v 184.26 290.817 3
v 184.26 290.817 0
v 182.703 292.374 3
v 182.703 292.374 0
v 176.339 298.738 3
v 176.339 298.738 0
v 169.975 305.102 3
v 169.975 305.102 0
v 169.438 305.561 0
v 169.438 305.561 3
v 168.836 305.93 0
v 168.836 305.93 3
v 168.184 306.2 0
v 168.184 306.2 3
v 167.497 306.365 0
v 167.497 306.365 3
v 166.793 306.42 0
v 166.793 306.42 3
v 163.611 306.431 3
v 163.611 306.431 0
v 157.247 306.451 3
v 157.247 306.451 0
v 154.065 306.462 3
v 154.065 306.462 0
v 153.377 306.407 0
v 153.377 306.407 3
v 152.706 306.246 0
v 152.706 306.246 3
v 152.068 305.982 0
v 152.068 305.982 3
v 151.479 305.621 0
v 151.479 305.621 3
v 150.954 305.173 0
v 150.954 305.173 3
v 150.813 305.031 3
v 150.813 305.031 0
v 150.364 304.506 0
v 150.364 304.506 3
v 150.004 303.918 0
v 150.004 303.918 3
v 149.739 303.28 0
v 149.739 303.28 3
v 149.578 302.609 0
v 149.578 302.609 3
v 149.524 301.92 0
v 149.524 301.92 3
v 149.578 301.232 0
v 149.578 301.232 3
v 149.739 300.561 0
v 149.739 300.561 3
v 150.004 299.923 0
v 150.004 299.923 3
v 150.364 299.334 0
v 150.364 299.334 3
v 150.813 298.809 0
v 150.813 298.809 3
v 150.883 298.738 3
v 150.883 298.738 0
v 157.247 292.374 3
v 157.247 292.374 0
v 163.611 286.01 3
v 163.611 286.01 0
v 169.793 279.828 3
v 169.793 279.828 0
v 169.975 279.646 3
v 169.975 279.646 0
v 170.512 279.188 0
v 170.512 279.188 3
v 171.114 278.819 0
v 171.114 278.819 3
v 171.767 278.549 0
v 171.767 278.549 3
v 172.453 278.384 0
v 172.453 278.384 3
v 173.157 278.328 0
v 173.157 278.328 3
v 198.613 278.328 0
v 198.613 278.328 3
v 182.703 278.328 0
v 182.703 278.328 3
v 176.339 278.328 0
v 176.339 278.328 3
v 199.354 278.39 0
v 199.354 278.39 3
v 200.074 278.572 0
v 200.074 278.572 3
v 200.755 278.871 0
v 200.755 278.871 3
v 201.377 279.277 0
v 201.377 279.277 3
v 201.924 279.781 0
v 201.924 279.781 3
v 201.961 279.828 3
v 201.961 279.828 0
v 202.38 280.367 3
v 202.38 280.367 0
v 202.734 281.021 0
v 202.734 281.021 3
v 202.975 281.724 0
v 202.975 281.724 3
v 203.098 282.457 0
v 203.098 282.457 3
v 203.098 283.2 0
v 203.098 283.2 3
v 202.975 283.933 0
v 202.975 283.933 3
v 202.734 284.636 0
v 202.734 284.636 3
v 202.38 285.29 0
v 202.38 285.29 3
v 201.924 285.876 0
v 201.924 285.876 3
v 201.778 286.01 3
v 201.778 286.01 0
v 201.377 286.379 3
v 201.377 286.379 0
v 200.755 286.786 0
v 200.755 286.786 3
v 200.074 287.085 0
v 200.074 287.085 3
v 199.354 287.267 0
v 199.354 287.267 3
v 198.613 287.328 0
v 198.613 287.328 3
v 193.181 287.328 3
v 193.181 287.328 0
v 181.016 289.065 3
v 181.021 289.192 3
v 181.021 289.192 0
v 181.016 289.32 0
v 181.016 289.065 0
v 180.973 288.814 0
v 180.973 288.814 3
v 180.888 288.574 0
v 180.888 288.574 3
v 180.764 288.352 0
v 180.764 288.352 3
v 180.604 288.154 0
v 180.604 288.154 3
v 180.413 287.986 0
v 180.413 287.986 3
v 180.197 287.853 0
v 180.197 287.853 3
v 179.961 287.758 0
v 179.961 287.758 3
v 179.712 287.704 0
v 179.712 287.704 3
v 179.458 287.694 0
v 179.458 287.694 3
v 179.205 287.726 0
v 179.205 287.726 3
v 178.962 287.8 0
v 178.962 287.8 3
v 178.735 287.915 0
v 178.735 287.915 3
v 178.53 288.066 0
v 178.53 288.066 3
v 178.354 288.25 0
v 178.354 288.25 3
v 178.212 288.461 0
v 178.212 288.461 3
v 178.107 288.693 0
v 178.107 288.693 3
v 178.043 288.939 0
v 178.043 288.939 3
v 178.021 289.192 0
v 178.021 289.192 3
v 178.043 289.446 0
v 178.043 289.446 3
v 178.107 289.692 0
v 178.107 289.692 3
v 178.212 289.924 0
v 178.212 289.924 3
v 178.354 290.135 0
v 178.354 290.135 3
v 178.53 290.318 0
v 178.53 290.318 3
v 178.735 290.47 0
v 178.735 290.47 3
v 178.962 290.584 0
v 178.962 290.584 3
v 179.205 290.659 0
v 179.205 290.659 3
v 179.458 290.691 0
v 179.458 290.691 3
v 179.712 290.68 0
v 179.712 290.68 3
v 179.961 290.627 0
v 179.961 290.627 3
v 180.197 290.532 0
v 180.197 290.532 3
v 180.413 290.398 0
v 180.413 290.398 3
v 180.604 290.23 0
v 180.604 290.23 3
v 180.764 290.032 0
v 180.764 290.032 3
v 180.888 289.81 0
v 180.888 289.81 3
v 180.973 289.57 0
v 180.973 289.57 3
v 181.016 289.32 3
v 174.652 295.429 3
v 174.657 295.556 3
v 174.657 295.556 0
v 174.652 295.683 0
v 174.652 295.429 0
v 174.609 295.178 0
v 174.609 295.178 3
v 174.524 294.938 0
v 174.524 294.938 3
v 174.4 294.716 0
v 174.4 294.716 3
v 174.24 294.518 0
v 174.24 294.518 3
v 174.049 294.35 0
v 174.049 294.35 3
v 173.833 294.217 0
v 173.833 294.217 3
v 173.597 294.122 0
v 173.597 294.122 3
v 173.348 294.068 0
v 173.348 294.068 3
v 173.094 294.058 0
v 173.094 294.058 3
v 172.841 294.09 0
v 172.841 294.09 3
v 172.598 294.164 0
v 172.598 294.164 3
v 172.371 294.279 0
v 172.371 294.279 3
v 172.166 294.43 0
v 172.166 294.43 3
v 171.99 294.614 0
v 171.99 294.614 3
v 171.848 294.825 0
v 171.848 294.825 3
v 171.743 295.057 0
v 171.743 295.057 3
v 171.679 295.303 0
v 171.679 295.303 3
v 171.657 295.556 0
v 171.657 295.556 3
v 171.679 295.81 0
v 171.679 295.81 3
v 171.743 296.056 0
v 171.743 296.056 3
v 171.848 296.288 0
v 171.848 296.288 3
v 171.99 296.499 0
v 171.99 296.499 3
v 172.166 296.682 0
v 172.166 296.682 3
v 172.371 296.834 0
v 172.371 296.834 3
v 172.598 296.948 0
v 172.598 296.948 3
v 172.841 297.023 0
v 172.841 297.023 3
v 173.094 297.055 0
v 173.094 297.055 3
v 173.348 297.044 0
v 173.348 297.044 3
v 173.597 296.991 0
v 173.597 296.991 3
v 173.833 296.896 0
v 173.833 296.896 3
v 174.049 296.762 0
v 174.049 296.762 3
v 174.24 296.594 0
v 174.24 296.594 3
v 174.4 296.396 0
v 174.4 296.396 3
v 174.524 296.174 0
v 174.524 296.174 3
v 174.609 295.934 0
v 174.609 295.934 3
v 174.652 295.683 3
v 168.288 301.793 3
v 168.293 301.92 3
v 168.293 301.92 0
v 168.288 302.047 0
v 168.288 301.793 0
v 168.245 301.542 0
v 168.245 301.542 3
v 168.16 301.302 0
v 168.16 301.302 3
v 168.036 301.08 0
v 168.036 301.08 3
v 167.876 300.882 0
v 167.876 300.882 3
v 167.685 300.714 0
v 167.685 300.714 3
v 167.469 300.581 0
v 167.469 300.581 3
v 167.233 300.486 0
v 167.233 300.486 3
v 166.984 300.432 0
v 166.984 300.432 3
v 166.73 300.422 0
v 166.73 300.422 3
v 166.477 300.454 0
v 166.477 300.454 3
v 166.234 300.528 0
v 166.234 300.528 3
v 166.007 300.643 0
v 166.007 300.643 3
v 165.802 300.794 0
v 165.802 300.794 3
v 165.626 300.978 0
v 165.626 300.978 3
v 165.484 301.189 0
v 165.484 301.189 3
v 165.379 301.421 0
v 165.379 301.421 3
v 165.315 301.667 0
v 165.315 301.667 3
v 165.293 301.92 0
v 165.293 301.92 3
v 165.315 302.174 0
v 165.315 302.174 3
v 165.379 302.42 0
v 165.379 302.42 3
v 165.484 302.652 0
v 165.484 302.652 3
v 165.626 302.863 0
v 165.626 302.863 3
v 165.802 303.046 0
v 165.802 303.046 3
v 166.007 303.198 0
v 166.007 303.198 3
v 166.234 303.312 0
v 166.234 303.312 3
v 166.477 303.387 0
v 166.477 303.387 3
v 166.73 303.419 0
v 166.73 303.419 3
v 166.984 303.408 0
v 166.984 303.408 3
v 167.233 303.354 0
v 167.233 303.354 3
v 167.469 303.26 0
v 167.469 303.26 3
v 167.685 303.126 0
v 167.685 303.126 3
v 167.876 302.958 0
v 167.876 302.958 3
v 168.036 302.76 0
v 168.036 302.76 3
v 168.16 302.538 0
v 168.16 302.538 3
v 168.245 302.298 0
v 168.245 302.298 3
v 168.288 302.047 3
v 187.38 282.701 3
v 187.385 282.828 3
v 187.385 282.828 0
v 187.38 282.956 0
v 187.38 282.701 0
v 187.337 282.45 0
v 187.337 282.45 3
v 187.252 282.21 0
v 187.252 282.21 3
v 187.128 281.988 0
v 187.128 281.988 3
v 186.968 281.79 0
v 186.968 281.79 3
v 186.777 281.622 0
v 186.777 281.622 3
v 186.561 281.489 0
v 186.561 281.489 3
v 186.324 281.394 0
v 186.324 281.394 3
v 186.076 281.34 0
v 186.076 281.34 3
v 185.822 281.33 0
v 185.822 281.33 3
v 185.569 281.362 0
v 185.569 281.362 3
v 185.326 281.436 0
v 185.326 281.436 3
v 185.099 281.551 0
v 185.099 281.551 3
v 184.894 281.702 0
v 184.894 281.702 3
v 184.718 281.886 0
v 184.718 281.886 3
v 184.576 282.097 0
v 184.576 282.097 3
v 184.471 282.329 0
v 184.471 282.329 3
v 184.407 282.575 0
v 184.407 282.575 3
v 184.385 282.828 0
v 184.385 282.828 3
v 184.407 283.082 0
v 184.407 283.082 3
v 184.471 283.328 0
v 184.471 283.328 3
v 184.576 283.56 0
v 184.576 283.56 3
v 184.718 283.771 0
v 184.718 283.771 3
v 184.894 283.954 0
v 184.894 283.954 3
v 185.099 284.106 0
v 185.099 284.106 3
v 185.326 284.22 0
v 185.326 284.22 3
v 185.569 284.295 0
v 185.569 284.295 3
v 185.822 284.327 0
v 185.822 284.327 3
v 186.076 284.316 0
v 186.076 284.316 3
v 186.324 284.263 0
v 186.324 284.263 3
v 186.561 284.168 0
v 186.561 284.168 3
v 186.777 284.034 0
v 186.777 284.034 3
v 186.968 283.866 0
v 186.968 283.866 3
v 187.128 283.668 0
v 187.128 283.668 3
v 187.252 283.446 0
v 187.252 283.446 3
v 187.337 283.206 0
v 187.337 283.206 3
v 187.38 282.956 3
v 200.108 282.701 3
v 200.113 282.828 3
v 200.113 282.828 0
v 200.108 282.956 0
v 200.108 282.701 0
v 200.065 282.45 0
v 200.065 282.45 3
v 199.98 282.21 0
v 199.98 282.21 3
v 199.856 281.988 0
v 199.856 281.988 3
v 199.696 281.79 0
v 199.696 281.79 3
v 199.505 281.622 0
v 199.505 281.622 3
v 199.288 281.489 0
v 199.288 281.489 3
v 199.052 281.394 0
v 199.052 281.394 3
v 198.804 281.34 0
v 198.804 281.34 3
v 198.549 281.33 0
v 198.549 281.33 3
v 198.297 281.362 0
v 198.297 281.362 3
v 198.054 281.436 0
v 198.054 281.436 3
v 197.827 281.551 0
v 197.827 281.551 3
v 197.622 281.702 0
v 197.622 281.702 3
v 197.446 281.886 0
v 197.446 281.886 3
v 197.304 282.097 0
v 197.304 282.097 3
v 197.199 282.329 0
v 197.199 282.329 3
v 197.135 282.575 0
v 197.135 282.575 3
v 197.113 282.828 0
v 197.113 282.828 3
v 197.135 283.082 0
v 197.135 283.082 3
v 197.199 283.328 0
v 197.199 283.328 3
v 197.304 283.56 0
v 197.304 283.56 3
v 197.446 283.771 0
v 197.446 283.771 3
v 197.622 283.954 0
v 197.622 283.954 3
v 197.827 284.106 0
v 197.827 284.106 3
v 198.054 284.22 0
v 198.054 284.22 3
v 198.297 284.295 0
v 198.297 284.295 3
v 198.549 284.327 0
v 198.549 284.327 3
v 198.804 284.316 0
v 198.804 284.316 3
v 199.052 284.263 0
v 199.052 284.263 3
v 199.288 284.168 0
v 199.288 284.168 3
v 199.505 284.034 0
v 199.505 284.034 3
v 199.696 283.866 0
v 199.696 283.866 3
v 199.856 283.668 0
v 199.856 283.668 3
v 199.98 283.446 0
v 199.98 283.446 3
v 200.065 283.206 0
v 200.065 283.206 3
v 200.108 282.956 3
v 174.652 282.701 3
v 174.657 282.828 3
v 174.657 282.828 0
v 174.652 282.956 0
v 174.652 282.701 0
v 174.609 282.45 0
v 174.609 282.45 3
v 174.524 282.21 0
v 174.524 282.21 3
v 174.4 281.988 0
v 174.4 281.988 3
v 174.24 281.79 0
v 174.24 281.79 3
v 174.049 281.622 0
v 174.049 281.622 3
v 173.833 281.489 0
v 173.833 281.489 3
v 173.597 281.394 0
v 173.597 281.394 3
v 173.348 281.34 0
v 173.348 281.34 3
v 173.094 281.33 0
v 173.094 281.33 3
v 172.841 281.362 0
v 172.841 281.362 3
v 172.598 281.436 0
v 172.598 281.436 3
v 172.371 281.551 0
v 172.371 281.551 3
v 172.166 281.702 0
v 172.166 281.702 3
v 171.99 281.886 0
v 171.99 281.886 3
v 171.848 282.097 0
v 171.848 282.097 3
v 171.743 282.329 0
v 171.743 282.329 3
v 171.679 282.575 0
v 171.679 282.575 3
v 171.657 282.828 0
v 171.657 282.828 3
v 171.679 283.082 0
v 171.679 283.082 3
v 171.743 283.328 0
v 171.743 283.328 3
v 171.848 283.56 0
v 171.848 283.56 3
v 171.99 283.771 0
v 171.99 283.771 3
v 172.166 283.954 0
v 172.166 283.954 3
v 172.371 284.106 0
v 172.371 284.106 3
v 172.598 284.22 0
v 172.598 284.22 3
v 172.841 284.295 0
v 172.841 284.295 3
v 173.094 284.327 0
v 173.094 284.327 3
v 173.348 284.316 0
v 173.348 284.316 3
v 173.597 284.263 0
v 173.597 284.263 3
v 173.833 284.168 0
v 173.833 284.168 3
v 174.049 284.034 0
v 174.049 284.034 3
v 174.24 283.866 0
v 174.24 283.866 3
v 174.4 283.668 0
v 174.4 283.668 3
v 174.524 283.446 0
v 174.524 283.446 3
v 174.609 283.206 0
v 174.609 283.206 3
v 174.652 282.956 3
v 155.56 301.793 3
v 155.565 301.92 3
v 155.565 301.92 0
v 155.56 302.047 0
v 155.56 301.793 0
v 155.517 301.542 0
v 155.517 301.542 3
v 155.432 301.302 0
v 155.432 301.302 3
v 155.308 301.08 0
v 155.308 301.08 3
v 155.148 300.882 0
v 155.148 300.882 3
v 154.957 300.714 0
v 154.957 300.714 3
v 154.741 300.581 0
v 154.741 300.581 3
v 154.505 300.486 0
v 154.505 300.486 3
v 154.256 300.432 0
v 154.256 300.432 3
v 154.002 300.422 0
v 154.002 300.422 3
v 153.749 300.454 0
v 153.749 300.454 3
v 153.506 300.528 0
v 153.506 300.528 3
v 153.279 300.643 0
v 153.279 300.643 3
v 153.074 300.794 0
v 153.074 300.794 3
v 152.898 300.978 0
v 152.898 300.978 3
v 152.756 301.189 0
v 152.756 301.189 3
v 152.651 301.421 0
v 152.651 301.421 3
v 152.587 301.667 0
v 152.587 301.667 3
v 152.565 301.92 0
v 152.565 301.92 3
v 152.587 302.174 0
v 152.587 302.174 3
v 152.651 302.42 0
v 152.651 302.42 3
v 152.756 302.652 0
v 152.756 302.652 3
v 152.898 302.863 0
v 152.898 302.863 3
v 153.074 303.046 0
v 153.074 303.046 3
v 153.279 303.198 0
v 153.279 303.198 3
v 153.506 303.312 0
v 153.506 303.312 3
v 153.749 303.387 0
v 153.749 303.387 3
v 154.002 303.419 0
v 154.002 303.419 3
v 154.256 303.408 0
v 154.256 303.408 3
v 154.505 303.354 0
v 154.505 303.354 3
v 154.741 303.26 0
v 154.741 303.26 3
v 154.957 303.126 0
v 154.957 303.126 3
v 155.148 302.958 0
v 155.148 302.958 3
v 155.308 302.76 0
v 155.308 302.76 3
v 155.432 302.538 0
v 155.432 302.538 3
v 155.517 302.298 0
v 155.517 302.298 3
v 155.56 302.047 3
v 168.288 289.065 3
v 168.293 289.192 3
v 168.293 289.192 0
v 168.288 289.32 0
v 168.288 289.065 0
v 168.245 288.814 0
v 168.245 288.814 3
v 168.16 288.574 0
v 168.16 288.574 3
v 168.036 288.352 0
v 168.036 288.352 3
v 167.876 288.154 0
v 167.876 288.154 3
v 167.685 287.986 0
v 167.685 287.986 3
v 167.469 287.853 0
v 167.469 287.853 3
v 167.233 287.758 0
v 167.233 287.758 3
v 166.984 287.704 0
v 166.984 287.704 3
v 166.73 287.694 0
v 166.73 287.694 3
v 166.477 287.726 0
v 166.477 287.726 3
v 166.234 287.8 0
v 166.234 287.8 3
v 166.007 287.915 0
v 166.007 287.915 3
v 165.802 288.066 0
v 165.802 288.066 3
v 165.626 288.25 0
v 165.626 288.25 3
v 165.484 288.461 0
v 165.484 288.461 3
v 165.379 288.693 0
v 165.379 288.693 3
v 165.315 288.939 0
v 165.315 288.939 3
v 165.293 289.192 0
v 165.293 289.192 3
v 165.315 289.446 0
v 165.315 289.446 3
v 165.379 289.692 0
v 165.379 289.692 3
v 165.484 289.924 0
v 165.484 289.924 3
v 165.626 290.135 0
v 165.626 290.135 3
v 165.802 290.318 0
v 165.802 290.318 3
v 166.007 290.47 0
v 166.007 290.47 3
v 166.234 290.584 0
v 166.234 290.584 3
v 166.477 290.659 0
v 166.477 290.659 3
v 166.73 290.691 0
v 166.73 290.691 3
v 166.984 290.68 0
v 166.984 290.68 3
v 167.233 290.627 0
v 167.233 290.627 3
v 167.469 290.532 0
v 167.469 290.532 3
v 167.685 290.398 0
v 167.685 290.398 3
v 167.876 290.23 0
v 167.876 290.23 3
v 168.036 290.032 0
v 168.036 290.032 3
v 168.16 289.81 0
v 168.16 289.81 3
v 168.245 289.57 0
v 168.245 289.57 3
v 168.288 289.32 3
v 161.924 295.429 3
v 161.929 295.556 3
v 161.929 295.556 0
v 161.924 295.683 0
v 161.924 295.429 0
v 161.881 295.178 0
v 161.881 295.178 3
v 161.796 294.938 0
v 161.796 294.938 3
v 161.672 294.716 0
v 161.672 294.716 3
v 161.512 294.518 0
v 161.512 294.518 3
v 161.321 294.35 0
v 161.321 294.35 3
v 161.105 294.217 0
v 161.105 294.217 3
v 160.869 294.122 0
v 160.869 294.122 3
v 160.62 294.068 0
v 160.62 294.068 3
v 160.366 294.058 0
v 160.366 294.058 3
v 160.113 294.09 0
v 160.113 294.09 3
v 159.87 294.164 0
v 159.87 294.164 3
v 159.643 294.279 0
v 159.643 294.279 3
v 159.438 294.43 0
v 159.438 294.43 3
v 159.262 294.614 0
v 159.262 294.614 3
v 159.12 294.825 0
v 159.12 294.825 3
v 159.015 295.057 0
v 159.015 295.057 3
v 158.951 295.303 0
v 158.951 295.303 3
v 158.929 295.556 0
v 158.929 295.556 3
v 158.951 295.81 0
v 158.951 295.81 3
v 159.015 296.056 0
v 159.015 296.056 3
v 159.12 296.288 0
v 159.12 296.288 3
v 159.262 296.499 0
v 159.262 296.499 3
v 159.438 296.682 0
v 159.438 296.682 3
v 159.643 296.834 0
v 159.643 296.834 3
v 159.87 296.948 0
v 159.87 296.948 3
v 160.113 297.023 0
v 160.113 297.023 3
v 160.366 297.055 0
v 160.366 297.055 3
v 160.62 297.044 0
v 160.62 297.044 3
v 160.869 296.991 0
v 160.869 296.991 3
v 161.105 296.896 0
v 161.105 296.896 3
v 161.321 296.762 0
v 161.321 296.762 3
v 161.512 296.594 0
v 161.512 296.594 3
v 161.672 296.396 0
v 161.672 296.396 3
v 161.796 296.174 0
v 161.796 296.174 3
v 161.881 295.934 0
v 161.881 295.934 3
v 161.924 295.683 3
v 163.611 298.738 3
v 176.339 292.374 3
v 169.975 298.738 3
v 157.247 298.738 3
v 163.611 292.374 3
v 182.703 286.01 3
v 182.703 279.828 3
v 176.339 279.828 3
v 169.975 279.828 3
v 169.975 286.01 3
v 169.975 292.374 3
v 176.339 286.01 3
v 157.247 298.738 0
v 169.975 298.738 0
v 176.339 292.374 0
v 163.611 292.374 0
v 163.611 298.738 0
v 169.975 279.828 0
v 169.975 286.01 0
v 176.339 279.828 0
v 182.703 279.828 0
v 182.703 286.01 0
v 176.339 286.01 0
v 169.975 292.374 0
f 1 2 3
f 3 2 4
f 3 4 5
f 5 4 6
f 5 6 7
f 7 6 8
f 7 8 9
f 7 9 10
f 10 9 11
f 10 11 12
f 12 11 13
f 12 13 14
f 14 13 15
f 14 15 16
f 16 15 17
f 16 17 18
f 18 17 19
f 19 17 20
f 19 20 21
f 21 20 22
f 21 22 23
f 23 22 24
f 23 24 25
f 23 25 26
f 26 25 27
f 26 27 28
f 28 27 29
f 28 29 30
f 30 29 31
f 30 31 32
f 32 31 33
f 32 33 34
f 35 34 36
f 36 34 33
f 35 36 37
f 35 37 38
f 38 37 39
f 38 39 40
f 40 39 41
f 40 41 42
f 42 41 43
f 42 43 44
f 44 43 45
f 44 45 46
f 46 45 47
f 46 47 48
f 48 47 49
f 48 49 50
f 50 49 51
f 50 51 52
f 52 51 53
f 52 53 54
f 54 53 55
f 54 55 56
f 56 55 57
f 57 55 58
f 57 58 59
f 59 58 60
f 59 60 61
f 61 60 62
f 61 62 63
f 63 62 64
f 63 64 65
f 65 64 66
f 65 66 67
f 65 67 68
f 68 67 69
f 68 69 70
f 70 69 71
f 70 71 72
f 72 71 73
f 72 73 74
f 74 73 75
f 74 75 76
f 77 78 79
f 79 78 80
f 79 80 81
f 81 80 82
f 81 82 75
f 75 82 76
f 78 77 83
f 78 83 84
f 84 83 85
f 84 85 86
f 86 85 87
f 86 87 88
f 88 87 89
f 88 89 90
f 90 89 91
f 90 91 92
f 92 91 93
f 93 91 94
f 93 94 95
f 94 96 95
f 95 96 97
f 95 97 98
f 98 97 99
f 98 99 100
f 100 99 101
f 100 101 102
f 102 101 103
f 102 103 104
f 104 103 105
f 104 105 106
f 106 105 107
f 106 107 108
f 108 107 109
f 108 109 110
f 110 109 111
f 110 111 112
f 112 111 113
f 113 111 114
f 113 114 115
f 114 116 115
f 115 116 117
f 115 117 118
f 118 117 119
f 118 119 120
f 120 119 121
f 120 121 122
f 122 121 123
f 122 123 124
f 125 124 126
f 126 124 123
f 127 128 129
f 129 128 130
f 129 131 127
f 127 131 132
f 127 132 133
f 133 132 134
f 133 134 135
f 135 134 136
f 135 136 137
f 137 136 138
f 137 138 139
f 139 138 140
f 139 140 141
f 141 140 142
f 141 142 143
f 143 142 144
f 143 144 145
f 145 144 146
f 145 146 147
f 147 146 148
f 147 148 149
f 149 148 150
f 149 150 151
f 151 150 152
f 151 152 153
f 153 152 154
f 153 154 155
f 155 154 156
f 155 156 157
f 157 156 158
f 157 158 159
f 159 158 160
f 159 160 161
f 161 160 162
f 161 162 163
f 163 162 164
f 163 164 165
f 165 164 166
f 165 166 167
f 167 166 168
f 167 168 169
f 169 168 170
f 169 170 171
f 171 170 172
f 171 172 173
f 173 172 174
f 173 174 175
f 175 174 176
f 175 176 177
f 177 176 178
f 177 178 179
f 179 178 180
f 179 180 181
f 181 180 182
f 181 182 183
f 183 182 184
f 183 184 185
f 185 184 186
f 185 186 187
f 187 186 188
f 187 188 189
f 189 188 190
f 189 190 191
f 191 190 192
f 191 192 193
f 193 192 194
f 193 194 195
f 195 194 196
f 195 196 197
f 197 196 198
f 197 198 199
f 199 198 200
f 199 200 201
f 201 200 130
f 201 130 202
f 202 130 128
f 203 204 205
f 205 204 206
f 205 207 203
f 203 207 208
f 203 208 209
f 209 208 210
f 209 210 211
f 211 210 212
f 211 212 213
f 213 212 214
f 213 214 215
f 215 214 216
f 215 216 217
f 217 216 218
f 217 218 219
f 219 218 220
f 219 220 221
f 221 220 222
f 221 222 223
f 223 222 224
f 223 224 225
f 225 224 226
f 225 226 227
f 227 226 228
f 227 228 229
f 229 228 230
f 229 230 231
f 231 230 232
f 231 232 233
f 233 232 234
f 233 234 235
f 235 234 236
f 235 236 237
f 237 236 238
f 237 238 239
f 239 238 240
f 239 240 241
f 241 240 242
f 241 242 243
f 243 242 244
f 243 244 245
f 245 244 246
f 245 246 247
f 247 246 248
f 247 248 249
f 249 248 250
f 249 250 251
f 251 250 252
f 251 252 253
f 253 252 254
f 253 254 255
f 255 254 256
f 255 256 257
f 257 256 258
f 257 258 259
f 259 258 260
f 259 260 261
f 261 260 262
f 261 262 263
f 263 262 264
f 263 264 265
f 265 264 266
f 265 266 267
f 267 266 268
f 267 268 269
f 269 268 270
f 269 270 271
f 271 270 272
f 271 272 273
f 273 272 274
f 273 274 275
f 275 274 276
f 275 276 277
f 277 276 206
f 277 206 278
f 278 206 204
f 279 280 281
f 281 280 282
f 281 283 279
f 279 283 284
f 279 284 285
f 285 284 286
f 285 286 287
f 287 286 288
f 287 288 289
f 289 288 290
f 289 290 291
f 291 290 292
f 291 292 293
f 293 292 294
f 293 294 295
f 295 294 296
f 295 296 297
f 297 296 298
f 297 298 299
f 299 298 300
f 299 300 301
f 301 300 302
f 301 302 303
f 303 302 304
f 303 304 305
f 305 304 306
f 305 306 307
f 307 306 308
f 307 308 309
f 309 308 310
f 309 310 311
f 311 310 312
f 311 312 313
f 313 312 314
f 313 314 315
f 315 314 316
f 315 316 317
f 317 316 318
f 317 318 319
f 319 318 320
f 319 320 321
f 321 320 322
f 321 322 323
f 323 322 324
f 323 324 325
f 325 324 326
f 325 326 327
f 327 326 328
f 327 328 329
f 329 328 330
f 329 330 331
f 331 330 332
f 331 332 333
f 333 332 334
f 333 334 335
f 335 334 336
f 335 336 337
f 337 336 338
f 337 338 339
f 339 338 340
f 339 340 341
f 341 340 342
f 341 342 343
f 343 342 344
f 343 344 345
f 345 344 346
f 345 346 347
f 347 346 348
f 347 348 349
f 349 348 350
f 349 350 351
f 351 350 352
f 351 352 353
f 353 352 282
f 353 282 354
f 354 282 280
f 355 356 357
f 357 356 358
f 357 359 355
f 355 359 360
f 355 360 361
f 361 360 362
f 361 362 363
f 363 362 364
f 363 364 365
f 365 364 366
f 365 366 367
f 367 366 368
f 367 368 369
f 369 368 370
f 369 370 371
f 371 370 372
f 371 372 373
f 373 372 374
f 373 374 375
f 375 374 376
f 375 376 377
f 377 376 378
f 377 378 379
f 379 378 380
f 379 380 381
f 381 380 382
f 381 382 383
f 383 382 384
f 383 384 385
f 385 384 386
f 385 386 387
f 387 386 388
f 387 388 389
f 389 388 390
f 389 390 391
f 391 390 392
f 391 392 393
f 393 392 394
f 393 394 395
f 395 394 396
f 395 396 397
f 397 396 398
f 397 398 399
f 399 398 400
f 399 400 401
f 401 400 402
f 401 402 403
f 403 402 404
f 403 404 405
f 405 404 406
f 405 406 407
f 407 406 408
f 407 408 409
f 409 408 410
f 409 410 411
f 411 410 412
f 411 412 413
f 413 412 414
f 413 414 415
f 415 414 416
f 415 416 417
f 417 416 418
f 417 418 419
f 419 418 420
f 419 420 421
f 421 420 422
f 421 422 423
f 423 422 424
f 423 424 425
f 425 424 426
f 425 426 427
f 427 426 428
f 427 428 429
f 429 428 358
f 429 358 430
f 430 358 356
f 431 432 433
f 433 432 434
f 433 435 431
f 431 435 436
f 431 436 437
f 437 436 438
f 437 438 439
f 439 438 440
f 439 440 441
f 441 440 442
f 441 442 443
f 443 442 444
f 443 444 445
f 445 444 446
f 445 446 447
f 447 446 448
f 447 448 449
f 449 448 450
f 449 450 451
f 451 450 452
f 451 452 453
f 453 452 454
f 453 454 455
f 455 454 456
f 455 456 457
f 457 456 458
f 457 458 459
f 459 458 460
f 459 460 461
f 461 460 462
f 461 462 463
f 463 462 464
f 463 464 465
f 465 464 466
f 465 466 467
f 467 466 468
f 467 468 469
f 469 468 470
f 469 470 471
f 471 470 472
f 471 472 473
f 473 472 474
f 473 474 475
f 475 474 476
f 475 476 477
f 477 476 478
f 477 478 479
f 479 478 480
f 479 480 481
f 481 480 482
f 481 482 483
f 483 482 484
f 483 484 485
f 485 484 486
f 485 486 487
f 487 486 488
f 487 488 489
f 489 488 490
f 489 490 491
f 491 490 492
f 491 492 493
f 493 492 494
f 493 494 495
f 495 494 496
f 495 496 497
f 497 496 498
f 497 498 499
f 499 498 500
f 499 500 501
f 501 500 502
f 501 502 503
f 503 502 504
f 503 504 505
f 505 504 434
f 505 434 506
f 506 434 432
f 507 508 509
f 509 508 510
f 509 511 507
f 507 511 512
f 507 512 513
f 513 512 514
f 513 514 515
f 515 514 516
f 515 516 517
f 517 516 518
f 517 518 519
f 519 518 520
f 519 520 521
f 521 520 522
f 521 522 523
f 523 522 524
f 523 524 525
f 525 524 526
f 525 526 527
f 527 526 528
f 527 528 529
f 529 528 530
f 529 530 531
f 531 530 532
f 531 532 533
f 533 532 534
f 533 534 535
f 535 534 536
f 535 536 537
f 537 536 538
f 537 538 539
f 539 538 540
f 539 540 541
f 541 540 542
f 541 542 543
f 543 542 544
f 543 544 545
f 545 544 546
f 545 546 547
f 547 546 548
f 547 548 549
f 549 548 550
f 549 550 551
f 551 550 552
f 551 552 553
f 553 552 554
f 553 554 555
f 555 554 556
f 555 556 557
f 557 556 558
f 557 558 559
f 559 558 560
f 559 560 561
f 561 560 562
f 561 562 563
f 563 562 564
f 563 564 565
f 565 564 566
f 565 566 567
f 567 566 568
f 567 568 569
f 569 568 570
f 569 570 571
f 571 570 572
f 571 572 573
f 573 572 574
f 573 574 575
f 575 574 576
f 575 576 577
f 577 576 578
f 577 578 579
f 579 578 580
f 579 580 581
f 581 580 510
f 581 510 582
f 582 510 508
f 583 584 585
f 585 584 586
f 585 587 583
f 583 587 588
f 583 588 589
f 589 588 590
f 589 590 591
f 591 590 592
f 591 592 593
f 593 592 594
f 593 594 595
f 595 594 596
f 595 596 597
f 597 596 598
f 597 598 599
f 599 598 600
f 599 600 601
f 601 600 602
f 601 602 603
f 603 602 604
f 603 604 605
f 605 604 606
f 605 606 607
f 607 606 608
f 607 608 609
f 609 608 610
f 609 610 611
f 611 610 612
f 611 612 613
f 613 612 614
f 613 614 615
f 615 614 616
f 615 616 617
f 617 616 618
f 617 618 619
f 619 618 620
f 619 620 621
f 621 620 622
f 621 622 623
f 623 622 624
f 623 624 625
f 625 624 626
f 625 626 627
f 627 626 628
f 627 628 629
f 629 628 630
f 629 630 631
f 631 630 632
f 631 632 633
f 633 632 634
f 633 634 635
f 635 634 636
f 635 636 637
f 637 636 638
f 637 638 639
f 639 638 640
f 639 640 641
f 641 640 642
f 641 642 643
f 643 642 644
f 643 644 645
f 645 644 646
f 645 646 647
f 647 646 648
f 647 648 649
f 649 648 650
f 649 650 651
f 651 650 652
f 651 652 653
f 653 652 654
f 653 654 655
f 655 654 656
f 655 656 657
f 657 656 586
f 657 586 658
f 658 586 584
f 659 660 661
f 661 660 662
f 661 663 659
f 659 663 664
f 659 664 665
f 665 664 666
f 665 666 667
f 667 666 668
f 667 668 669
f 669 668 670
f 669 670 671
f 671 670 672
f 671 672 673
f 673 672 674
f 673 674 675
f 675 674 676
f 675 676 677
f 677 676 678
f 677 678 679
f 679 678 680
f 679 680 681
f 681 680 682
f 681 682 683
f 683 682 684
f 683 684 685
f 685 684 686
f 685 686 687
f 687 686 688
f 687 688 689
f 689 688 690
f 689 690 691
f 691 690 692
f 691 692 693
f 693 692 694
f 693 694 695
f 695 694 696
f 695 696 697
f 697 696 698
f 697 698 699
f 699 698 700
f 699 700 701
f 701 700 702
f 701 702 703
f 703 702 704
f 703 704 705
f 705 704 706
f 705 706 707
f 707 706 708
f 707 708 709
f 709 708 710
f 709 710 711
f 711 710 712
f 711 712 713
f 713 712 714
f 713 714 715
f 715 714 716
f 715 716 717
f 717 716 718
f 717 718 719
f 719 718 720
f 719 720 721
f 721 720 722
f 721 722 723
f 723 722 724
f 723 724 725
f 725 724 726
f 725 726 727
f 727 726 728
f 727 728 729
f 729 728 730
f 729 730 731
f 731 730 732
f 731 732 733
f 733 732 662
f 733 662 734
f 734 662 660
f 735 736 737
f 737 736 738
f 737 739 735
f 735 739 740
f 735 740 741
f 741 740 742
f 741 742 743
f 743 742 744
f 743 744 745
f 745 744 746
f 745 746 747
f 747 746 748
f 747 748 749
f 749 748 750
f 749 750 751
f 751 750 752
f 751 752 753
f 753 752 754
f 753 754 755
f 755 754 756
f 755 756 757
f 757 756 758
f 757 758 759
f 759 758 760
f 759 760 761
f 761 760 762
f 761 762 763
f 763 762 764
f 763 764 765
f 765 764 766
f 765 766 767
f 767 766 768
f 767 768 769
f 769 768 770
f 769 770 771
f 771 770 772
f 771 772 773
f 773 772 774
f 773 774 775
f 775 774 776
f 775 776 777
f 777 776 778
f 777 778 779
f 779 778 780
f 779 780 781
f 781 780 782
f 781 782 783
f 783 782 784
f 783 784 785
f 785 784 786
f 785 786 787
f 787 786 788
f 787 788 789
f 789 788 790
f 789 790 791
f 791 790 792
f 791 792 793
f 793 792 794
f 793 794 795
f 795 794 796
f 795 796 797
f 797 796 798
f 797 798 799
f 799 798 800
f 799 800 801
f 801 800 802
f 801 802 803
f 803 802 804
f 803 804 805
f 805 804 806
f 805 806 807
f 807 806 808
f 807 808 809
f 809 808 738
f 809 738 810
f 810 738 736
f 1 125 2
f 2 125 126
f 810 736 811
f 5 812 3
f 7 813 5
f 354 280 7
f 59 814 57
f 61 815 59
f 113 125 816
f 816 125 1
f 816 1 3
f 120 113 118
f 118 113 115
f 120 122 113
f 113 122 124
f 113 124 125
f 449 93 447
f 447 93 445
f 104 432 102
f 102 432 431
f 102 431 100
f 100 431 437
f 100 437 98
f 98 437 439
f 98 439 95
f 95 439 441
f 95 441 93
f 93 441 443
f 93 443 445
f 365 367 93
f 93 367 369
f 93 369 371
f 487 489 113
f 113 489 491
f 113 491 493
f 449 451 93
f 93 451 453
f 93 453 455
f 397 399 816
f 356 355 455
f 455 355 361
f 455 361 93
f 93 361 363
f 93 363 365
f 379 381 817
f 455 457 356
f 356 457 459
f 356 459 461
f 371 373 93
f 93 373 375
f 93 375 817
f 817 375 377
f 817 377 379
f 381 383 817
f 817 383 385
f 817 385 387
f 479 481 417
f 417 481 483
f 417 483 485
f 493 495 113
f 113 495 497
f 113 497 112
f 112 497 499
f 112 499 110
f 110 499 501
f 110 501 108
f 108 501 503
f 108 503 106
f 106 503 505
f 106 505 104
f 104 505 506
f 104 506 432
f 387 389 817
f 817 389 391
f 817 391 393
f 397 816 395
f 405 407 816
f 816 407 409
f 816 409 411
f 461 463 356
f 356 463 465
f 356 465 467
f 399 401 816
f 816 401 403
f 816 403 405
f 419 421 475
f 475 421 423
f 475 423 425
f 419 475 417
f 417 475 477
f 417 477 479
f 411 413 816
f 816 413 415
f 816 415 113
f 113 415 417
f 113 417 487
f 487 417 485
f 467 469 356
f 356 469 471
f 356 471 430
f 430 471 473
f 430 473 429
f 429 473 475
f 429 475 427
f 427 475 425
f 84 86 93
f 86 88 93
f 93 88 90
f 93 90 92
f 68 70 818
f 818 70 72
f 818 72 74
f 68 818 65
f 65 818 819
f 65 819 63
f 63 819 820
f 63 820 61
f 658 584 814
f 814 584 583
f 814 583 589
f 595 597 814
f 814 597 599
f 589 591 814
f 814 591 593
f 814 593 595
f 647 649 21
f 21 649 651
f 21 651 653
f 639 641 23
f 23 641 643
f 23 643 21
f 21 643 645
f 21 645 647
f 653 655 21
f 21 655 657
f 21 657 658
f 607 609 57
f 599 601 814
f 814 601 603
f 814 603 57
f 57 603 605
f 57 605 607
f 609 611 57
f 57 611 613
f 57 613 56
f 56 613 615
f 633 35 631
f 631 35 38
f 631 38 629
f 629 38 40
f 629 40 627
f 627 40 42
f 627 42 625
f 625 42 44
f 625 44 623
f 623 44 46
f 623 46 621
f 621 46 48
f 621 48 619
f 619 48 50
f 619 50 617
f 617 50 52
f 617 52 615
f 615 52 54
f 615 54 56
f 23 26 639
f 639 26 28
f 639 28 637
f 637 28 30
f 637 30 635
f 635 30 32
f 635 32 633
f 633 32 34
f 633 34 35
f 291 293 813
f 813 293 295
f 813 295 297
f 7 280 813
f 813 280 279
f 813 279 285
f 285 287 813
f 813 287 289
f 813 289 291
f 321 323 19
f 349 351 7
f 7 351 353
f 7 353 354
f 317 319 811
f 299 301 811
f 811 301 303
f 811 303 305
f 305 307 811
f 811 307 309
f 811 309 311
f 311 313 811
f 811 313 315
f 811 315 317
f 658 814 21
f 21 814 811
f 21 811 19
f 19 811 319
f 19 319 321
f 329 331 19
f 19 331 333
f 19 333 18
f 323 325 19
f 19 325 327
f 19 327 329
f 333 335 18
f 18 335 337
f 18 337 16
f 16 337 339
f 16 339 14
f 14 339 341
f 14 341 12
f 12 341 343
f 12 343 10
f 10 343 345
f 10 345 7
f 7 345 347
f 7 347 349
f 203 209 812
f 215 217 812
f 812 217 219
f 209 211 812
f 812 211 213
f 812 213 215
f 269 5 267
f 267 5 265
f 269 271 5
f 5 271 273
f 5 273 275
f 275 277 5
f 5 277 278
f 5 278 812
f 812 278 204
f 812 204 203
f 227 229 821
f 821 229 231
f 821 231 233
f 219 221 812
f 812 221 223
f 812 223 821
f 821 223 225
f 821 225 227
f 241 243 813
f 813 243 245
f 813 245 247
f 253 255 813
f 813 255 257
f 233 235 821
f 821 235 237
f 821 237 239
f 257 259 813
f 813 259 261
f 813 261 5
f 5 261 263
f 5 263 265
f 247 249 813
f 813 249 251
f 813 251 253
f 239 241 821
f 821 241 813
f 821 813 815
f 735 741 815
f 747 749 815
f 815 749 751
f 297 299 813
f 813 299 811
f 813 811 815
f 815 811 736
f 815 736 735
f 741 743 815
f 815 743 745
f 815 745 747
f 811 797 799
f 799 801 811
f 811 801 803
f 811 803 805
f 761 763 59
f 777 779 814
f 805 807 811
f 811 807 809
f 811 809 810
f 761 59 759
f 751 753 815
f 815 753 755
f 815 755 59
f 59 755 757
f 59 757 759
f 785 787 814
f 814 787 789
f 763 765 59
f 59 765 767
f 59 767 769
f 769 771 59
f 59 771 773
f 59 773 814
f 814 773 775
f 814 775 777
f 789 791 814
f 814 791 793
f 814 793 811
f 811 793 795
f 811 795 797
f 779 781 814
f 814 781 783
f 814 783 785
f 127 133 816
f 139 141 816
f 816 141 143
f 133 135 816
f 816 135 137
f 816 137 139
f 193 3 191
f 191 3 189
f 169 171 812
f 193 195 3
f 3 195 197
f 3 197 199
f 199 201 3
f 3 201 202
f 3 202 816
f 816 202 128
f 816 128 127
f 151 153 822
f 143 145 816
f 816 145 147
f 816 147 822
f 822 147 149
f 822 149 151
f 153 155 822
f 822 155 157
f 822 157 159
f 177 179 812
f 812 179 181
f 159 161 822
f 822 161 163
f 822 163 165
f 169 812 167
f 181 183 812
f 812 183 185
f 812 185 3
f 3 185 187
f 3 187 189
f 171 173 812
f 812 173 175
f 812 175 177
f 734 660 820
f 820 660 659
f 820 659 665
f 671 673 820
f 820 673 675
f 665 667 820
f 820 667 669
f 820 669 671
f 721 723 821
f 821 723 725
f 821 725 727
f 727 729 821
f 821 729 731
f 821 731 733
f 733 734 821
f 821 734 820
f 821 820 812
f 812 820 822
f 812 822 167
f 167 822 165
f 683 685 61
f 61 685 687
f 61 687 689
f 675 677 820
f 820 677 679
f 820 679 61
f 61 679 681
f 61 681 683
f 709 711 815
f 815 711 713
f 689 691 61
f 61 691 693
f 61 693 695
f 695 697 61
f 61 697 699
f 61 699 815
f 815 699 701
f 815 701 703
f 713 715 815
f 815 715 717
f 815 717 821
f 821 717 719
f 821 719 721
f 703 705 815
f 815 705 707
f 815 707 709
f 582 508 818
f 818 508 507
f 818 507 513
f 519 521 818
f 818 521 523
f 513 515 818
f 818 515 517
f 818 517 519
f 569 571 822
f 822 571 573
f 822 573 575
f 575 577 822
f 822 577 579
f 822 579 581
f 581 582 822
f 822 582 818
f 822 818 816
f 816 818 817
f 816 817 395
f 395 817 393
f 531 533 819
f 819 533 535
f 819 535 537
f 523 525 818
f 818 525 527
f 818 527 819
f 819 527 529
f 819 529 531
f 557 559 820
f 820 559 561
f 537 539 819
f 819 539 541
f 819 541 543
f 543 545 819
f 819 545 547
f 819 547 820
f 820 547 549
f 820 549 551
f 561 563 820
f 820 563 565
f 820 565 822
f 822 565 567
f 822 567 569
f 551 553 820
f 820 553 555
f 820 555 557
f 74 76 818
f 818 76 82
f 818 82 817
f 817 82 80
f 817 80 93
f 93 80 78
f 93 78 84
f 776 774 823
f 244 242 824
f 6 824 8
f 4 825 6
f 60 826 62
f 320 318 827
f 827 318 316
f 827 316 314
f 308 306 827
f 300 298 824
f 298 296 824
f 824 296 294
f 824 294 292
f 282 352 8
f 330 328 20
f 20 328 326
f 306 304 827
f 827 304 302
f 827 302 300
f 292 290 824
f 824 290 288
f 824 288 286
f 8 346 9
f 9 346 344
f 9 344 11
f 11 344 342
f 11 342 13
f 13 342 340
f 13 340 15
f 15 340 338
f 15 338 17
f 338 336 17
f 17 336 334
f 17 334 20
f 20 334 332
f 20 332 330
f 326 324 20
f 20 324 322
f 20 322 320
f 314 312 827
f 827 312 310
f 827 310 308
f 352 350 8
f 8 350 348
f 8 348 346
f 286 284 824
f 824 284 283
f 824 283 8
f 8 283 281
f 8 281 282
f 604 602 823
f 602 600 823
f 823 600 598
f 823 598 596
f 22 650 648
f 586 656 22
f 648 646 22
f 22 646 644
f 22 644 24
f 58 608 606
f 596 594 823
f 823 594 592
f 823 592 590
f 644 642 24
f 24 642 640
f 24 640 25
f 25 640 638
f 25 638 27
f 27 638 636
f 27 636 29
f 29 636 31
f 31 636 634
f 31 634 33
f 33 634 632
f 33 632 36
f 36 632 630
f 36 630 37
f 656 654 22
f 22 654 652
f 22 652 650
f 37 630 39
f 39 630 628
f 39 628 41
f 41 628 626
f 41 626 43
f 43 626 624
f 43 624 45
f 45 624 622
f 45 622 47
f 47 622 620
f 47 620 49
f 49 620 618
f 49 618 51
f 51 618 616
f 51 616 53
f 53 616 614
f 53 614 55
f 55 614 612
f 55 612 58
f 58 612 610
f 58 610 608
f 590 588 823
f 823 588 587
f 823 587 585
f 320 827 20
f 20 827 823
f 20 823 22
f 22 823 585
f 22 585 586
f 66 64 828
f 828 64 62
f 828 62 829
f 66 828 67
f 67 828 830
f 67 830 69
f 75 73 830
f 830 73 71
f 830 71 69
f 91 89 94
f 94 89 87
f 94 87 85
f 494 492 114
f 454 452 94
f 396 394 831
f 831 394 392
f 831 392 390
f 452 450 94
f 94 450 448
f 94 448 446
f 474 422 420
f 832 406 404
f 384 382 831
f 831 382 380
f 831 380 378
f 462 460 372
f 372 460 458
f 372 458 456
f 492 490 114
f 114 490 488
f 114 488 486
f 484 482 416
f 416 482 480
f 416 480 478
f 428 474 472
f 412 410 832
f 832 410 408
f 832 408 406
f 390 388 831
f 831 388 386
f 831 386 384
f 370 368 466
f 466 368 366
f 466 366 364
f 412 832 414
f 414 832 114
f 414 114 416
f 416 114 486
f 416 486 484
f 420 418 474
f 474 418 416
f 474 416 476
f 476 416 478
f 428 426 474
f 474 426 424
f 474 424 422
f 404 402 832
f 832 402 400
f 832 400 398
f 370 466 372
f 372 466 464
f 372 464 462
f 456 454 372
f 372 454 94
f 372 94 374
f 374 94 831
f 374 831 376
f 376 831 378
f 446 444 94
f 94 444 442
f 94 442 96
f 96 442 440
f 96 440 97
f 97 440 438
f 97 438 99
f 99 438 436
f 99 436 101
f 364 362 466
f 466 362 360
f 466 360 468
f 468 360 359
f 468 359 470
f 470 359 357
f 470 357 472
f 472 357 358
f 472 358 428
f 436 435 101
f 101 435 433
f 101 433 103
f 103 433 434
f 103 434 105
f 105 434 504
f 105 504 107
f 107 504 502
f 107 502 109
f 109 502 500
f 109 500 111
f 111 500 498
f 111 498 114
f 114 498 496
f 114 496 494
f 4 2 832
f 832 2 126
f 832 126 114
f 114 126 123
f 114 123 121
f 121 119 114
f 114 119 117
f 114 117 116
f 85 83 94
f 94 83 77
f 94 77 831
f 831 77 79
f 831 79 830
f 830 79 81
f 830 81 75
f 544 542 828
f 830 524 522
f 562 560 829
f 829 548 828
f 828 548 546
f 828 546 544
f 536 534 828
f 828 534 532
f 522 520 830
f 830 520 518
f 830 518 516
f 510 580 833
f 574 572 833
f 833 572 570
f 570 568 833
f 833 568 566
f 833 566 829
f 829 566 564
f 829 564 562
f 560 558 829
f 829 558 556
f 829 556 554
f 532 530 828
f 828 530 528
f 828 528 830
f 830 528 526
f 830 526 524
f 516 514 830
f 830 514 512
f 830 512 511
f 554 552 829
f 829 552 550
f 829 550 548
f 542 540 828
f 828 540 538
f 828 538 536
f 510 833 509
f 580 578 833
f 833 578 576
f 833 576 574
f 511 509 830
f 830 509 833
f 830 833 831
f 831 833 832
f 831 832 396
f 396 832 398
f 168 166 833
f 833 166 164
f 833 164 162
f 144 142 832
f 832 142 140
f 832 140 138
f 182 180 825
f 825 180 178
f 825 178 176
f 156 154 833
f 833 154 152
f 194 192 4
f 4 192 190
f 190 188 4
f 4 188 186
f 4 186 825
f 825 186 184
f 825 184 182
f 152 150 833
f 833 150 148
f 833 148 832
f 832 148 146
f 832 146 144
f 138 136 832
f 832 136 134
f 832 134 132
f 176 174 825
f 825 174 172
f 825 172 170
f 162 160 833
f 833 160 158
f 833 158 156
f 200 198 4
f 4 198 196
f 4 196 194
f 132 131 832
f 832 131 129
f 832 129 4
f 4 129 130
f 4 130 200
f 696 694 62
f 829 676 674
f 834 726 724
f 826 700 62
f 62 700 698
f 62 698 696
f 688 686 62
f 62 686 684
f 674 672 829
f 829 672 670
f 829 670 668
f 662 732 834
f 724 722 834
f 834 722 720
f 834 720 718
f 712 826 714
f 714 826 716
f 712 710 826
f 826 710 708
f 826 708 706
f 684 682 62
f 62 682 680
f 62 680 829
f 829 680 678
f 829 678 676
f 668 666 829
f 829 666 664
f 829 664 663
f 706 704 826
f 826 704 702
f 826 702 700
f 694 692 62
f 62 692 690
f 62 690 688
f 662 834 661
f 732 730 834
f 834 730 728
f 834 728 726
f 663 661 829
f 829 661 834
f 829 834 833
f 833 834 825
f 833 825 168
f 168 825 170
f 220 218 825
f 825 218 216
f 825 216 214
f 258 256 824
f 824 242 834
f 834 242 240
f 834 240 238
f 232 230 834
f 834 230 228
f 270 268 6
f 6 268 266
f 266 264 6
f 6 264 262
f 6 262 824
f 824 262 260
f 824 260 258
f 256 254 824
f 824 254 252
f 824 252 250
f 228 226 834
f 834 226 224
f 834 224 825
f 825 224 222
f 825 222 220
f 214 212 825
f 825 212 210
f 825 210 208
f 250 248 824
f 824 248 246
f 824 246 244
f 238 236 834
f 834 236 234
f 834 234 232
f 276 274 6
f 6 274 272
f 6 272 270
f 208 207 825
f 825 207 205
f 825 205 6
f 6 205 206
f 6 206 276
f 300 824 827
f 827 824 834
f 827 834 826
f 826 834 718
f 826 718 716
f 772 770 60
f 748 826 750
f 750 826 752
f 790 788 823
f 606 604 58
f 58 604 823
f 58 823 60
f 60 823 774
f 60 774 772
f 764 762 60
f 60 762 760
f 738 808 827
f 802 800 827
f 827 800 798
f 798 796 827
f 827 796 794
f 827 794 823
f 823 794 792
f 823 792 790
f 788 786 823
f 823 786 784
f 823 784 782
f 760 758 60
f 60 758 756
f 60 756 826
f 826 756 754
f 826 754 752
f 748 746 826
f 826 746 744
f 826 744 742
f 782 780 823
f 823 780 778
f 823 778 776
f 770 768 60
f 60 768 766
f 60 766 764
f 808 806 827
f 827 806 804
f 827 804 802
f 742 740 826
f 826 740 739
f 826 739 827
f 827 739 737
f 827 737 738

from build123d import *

# Parameters (mm, degrees)
MODEL_R                 = 1.5
SALIENTE_EXTRUIR1_DEPTH = 3


with BuildPart() as part:
    # Model → Saliente-Extruir1 (new body)
    with BuildSketch(Plane.XY):
        with BuildLine():
            Line((198.613156537, 287.328333228), (193.181176022, 287.328333228))
            Line((193.181176022, 287.328333228), (184.260234476, 290.817294259))
            Line((184.260234476, 290.817294259), (169.975331899, 305.102196835))
            ThreePointArc((169.975331899, 305.102196835), (168.51542683, 306.077674216), (166.793351384, 306.42021632))
            Line((166.793351384, 306.42021632), (154.094067467, 306.461544477))
            Line((154.094067467, 306.461544477), (154.065429323, 306.461637676))
            ThreePointArc((154.065429323, 306.461637676), (152.38162222, 306.126707619), (150.954159485, 305.172907513))
            Line((150.954159485, 305.172907513), (150.812738129, 305.031486157))
            ThreePointArc((150.812738129, 305.031486157), (149.524007966, 301.92021632), (150.812738129, 298.808946483))
            Line((150.812738129, 298.808946483), (169.975331899, 279.646352713))
            ThreePointArc((169.975331899, 279.646352713), (171.435236969, 278.670875332), (173.157312415, 278.328333228))
            Line((173.157312415, 278.328333228), (198.613156537, 278.328333228))
            ThreePointArc((198.613156537, 278.328333228), (203.113156537, 282.828333228), (198.613156537, 287.328333228))
        make_face()
        with Locations((173.157312415, 282.828333228)):
            Circle(MODEL_R, mode=Mode.SUBTRACT)
        with Locations((166.793351384, 289.192294259)):
            Circle(MODEL_R, mode=Mode.SUBTRACT)
        with Locations((185.885234476, 282.828333228)):
            Circle(MODEL_R, mode=Mode.SUBTRACT)
        with Locations((198.613156537, 282.828333228)):
            Circle(MODEL_R, mode=Mode.SUBTRACT)
        with Locations((179.521273445, 289.192294259)):
            Circle(MODEL_R, mode=Mode.SUBTRACT)
        with Locations((160.429390353, 295.556255289)):
            Circle(MODEL_R, mode=Mode.SUBTRACT)
        with Locations((173.157312415, 295.556255289)):
            Circle(MODEL_R, mode=Mode.SUBTRACT)
        with Locations((154.065429323, 301.92021632)):
            Circle(MODEL_R, mode=Mode.SUBTRACT)
        with Locations((166.793351384, 301.92021632)):
            Circle(MODEL_R, mode=Mode.SUBTRACT)
    extrude(amount=SALIENTE_EXTRUIR1_DEPTH)


solid = part.part
